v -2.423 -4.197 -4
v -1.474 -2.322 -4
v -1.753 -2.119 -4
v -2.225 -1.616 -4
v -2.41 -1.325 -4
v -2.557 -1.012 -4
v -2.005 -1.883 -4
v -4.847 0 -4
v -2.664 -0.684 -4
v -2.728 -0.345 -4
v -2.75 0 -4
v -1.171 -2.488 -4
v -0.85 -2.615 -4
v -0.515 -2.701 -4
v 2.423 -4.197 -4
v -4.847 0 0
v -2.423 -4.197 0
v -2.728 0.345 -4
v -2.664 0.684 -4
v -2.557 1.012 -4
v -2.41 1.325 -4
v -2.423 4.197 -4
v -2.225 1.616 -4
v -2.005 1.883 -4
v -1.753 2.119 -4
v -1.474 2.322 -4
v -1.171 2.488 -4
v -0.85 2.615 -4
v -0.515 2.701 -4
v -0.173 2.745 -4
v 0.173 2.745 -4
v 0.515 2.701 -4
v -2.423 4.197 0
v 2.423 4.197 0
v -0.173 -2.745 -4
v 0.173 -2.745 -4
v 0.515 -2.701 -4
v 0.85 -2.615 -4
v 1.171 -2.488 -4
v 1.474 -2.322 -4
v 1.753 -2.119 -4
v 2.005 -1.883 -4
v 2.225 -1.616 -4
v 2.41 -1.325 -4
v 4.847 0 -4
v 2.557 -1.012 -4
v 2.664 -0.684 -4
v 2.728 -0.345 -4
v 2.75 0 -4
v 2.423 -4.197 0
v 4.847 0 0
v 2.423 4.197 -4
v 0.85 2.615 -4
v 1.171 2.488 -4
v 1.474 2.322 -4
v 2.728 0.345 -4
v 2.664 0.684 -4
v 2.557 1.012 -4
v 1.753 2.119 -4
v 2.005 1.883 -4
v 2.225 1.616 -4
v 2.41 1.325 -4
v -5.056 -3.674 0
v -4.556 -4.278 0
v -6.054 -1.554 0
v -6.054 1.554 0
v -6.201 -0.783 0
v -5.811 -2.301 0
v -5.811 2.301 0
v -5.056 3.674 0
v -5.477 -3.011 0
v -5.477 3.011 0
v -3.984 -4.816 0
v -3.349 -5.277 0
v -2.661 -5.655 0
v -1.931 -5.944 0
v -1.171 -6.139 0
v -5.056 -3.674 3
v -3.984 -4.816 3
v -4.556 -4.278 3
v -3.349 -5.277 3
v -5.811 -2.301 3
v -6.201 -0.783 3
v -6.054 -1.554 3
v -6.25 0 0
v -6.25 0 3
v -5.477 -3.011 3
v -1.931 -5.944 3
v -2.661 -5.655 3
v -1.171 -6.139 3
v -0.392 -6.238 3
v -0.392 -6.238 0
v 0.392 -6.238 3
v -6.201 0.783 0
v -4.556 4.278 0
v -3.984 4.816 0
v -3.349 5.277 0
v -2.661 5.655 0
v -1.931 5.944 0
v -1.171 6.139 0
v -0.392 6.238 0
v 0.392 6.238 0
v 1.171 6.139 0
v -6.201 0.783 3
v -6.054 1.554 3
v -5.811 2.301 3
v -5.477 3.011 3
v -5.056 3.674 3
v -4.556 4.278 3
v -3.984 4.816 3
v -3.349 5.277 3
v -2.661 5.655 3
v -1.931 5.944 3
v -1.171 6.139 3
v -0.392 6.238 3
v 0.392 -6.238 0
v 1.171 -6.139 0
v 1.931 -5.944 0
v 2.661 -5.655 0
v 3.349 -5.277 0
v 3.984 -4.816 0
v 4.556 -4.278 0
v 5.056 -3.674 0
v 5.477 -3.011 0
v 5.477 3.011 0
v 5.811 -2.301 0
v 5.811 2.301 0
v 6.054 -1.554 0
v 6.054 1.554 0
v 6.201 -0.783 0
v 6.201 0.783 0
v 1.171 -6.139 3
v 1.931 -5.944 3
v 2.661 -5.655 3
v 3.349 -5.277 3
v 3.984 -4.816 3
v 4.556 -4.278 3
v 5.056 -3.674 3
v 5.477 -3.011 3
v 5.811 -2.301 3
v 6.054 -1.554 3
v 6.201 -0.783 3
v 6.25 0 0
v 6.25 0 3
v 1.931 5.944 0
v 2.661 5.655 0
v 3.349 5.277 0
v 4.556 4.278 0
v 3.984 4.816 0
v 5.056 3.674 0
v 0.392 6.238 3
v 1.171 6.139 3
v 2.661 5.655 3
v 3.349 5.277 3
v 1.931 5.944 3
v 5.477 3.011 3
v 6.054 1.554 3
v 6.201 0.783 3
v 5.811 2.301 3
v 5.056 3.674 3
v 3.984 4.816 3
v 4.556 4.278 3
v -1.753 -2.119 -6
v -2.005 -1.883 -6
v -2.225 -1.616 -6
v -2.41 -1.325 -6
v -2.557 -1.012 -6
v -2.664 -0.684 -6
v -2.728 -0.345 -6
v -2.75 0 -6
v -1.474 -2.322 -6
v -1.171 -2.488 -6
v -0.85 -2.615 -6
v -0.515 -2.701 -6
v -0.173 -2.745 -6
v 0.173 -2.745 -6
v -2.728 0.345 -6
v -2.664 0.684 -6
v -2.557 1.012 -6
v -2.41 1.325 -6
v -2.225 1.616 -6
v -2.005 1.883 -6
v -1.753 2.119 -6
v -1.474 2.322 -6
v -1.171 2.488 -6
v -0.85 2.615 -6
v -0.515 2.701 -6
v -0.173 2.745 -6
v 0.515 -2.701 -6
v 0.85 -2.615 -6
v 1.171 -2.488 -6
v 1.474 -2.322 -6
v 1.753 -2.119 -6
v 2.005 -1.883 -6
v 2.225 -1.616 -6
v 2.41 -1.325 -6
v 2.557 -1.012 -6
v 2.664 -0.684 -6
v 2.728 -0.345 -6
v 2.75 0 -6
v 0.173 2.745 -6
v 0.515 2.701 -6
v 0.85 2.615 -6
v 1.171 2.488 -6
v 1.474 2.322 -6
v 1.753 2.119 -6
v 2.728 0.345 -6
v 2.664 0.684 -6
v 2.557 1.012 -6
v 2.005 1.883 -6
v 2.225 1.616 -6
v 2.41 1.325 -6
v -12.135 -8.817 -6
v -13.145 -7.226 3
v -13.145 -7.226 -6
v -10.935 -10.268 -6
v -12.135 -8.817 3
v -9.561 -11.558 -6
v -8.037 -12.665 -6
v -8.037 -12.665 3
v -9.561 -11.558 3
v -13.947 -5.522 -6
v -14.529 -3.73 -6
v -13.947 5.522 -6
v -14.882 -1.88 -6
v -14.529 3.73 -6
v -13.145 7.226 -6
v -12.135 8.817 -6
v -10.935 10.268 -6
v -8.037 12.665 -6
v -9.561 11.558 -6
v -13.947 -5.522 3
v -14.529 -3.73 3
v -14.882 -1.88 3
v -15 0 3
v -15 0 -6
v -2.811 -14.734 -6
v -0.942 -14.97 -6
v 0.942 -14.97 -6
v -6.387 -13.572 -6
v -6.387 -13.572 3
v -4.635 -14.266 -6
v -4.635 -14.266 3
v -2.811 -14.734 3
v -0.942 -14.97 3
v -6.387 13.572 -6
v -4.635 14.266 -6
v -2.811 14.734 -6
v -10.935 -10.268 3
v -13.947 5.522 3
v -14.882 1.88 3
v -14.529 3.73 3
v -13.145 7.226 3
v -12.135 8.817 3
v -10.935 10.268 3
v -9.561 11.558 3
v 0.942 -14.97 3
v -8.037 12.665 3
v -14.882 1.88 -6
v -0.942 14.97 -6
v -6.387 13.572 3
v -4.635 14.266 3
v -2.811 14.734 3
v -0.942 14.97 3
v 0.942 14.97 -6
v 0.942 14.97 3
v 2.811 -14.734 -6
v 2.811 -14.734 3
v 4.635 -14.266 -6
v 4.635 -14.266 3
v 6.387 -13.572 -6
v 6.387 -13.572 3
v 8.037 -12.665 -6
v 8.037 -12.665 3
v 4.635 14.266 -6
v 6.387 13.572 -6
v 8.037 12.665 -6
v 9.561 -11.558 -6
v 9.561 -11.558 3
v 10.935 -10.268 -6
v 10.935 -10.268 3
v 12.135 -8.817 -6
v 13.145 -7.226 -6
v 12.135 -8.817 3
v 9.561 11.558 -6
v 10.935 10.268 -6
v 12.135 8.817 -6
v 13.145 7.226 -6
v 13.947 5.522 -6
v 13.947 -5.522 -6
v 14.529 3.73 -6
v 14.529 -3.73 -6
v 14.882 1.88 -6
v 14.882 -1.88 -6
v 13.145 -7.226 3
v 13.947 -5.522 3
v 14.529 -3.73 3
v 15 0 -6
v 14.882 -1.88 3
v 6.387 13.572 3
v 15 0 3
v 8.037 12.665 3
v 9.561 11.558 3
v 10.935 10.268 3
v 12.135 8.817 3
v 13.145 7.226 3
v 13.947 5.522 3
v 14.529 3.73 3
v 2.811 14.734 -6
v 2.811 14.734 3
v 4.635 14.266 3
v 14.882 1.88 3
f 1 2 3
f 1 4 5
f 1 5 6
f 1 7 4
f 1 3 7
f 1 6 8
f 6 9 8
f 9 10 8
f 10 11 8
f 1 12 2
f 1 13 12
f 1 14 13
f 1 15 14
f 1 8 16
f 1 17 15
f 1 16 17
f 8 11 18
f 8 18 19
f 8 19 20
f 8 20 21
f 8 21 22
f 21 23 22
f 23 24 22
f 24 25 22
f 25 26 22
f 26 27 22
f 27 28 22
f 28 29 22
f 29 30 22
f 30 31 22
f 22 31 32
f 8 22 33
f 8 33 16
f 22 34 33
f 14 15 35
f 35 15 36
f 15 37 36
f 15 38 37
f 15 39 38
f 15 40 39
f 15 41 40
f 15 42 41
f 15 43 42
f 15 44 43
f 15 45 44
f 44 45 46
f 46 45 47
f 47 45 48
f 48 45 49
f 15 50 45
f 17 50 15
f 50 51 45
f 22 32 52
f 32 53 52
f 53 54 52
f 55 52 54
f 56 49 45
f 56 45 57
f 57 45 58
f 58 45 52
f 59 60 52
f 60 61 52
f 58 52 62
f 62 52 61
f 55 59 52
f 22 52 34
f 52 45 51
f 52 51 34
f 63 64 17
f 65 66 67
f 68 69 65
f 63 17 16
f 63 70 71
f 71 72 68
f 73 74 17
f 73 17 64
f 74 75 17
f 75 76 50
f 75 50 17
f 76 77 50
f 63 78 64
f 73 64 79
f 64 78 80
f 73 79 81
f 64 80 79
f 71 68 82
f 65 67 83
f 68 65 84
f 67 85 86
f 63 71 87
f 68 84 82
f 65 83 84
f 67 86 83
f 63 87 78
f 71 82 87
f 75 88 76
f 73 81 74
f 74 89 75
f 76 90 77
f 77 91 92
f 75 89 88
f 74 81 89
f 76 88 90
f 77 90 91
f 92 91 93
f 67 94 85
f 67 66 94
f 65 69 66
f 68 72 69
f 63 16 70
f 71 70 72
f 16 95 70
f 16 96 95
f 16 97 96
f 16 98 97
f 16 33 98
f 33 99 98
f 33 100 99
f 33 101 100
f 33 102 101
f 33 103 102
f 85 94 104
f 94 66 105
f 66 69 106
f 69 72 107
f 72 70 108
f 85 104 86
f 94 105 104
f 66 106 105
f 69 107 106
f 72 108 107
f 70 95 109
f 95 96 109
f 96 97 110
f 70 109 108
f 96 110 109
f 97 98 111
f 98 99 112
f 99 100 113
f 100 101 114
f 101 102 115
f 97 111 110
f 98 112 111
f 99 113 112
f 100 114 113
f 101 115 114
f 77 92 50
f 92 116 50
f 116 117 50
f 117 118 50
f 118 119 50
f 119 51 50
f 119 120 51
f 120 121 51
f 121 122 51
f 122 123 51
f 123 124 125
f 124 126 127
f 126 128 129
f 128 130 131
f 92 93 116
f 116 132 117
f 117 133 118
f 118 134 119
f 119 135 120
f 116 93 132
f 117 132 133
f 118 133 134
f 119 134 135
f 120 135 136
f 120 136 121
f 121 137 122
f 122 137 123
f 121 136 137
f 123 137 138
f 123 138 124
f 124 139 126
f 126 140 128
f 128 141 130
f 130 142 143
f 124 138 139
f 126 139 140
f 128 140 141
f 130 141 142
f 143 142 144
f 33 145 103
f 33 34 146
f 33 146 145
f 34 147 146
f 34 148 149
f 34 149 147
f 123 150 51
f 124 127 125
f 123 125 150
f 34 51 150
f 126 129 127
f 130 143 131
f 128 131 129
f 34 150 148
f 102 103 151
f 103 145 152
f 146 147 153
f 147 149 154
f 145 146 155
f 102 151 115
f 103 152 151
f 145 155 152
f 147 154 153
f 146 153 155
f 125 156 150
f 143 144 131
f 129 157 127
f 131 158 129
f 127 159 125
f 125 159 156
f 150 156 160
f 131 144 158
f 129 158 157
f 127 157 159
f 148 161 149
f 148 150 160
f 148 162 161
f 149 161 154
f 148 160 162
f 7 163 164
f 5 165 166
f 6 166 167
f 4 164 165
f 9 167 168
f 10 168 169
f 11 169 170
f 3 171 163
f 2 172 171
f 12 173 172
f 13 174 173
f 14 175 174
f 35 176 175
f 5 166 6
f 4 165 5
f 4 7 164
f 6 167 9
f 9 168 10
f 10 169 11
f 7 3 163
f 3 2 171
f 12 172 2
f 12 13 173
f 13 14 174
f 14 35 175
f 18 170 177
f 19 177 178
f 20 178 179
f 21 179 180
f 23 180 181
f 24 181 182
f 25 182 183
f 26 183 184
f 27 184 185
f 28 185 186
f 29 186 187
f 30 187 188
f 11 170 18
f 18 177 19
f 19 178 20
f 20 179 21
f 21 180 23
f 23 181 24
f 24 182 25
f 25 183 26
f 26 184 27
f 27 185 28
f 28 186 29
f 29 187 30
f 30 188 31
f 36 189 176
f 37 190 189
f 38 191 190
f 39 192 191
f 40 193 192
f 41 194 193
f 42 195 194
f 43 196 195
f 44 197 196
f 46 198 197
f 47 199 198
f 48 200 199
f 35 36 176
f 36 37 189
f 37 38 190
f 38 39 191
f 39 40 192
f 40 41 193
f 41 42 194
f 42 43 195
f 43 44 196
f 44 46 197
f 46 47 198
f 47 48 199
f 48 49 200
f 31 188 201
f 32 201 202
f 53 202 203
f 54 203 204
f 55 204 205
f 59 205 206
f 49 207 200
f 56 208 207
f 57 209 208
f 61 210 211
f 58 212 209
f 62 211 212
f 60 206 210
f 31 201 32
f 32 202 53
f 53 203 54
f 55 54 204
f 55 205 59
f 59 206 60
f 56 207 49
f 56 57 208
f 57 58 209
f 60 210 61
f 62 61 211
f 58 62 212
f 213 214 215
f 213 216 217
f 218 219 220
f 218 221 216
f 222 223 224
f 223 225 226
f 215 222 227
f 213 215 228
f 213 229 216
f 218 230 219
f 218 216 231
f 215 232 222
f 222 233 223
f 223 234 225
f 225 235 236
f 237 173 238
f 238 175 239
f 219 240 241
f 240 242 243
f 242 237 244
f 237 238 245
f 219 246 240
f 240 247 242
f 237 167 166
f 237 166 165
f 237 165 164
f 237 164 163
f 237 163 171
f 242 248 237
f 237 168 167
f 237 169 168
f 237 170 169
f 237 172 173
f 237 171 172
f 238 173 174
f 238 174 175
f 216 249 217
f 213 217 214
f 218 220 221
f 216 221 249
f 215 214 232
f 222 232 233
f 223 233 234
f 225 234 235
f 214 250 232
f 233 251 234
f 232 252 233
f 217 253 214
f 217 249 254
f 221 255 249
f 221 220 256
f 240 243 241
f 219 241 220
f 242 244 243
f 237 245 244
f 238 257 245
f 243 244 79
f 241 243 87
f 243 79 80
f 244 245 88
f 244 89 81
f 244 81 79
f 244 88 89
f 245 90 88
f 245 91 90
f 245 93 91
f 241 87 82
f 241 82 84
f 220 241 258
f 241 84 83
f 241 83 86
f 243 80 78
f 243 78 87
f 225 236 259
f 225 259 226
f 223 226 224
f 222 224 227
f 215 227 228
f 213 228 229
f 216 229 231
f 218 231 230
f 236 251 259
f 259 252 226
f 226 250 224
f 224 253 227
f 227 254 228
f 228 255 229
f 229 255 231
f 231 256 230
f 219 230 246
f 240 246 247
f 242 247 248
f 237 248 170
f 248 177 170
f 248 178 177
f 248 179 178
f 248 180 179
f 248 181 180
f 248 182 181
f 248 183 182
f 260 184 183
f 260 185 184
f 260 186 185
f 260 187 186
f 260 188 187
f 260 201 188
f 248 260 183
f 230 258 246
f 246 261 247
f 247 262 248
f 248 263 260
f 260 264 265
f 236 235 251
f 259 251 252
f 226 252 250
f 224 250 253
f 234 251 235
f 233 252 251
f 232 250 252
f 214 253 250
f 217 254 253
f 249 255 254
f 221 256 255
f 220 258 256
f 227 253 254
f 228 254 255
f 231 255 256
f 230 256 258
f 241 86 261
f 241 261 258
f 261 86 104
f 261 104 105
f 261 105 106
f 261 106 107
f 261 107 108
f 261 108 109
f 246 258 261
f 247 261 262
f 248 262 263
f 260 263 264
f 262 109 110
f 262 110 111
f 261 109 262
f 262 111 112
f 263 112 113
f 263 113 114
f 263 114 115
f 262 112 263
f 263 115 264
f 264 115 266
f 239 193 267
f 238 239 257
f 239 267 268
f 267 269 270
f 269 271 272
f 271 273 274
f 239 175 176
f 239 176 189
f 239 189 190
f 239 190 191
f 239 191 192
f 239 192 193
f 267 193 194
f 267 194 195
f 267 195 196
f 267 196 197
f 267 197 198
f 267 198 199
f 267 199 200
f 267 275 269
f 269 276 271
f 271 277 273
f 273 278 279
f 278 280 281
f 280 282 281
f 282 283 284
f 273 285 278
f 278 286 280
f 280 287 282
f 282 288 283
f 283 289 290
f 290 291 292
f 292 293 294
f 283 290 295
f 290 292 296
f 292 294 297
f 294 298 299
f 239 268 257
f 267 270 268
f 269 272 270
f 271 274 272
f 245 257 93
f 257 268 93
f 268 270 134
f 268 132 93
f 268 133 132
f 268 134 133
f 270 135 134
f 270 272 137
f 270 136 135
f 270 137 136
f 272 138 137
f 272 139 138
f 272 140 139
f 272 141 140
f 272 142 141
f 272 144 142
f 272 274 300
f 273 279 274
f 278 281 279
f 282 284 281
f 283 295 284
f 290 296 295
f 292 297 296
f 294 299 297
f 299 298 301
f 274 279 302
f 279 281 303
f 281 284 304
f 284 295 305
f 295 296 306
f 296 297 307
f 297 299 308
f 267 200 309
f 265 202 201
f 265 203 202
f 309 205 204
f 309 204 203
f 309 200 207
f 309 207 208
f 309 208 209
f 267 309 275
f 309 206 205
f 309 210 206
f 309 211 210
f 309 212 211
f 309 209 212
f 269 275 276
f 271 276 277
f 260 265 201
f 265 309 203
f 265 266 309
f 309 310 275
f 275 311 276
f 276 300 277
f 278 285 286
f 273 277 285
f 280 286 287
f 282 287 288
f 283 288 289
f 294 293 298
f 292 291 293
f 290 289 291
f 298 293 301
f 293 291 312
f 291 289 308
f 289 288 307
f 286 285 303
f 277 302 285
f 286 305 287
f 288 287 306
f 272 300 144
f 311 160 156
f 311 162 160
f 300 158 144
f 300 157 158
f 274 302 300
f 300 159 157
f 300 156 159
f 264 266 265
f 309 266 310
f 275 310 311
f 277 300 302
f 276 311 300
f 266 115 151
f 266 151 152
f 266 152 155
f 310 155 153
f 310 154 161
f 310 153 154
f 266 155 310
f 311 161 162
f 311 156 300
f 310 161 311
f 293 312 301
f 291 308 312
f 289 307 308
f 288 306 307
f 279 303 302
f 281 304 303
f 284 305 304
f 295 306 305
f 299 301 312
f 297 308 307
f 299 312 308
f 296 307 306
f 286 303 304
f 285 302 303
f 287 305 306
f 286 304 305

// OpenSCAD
$fn = 50;

difference() {
	union() {
		translate(v = [0, 0, -6.0]) {
			cylinder(h = 9.0, r = 15.0);
		}
	}
	union() {
		translate(v = [0, 0, 0]) {
			rotate(a = [0, 0, 0]) {
				difference() {
					union() {
						translate(v = [0, 0, -4]) {
							linear_extrude(height = 4) {
								polygon(points = [[4.8468, 0.0], [2.4234000000000004, 4.197451927062417], [-2.423399999999999, 4.197451927062417], [-4.8468, 5.935618106107392e-16], [-2.423400000000002, -4.197451927062416], [2.423399999999997, -4.197451927062419]]);
							}
						}
					}
					union();
				}
			}
		}
		#cylinder(h = 3, r = 6.25);
		#translate(v = [0, 0, -100.0]) {
			cylinder(h = 200, r = 2.75);
		}
	}
}
